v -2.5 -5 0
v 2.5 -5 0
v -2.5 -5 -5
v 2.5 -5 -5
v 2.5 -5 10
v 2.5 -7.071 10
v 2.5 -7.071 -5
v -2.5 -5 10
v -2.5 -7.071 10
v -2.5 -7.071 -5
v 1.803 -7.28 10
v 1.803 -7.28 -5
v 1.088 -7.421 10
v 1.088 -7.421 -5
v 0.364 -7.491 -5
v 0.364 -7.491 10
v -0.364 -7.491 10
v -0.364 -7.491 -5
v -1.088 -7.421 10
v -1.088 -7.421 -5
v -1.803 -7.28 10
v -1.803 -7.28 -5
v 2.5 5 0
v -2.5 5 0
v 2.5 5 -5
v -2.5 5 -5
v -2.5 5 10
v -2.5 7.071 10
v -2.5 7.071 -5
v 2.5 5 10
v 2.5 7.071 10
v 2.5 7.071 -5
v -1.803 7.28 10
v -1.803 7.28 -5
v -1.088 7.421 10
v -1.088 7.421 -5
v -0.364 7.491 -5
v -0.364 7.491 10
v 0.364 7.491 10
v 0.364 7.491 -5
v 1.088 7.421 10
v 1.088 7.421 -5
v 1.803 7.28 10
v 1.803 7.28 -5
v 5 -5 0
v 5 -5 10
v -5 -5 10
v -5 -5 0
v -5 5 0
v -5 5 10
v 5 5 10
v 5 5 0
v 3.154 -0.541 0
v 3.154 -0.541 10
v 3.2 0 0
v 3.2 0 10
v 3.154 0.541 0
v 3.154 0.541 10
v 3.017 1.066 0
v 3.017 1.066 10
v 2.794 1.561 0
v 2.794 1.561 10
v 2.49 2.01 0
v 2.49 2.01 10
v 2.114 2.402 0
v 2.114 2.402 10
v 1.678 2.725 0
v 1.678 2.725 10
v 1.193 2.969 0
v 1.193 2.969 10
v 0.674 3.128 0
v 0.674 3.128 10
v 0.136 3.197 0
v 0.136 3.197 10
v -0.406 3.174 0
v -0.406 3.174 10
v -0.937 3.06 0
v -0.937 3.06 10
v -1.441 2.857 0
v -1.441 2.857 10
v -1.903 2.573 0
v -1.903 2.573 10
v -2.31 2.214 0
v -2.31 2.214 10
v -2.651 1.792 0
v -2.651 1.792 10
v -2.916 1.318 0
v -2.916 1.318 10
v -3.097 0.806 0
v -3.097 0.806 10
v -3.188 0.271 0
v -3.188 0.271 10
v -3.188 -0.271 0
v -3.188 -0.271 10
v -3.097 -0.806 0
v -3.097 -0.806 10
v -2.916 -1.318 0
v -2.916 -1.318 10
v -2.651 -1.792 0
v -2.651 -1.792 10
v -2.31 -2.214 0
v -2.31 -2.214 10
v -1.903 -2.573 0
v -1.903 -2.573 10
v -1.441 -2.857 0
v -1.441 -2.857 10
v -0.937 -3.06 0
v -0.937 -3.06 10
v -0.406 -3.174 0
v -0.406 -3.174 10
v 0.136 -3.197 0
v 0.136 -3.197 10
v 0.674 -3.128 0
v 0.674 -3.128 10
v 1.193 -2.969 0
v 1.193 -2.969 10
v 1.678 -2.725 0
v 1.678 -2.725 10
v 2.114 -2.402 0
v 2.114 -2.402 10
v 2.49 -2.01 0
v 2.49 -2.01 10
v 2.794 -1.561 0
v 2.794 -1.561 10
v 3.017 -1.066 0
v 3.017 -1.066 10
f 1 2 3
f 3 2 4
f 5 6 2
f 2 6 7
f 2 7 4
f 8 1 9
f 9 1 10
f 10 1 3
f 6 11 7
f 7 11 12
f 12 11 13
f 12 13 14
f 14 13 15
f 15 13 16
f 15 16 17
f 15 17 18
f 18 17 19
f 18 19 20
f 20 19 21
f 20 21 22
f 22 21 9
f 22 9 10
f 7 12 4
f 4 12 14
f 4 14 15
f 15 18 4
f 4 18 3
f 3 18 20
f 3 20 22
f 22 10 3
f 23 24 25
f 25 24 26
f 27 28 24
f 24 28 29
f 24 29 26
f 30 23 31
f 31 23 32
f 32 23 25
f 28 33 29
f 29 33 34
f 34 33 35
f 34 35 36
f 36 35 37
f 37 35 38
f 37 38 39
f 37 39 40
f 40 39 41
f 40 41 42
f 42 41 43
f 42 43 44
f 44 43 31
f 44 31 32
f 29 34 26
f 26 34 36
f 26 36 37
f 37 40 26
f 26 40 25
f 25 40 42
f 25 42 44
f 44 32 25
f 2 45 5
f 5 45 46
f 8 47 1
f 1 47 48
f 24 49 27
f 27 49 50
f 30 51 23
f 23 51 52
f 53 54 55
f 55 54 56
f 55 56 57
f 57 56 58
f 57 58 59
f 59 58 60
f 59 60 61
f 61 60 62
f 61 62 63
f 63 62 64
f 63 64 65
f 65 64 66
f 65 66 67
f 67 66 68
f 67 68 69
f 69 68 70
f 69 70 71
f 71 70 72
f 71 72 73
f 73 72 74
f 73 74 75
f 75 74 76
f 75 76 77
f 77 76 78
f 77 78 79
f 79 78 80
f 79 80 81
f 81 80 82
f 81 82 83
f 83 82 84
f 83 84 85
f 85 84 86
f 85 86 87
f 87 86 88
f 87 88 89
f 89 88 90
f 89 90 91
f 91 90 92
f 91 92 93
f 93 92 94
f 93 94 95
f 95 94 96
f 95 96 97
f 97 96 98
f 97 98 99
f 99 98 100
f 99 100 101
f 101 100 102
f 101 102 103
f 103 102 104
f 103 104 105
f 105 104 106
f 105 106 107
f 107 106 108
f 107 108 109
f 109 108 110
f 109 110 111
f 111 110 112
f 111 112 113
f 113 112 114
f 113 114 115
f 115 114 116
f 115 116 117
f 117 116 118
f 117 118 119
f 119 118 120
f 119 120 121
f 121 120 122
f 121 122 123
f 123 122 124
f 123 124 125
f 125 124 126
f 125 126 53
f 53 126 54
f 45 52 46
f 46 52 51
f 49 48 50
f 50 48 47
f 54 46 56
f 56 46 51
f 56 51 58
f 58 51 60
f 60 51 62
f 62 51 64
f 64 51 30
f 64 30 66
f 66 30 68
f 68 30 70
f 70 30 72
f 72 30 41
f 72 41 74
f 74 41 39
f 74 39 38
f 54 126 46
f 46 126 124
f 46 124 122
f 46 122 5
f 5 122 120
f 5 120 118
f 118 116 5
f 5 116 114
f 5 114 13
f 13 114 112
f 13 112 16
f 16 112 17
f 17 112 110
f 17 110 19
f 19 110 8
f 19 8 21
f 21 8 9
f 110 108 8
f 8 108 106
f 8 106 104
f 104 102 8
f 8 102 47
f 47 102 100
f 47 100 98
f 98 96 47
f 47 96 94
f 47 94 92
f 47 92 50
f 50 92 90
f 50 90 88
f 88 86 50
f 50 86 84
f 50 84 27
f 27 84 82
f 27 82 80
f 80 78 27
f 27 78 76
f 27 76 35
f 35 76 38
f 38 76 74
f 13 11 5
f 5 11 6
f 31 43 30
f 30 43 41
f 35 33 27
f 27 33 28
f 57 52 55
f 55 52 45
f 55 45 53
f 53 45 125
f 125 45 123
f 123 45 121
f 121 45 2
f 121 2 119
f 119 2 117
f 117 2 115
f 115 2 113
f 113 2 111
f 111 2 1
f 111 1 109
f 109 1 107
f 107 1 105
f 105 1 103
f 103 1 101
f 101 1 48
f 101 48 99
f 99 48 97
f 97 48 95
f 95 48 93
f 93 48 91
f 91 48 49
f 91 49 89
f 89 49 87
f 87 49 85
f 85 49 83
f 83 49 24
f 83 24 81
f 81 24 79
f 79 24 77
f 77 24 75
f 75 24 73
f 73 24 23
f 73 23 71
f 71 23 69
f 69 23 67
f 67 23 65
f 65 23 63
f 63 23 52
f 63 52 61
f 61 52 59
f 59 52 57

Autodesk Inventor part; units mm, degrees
ref_plane "YZ Plane" through (0, 0, 0) normal (1, 0, 0) x (0, 1, 0)
ref_plane "XZ Plane" through (0, 0, 0) normal (0, 1, 0) x (-1, 0, 0)
ref_plane "XY Plane" through (0, 0, 0) normal (0, 0, 1) x (1, 0, 0)
sketch "Sketch1" plane through (0, 0, 0) normal (0, 0, 1) x (1, 0, 0)
  line L0 (5, 5) -> (5, -5)
  line L1 (-5, -5) -> (-5, 5)
  line L2 (5, 5) -> (-5, 5)
  line L3 (5, -5) -> (-5, -5)
  point P0 (0, 0)
  dimension "d16" = 10
  dimension "d17" = 10
  dimension "d18" = 5
  dimension "d19" = 5
extrude "Extrusion1" add sketch "Sketch1" along normal blind 10
sketch "Sketch3" plane through (0, 0, 10) normal (0, 0, 1) x (1, 0, 0)
  circle A0 centre (0, 0) radius 3.2
  dimension "d13" = 6.4
extrude "Extrusion3" cut sketch "Sketch3" against normal up to next
sketch "Sketch4" plane through (0, 0, 10) normal (0, 0, 1) x (1, 0, 0)
  arc A0 (-2.5, -7.0711) -> (2.5, -7.0711) centre (0, 0) ccw
  arc A1 (2.5, 7.0711) -> (-2.5, 7.0711) centre (0, 0) ccw
  line L0 (5, 5) -> (-5, 5) projected
  line L1 (-5, -5) -> (5, -5) projected
  line L2 (-2.5, 5) -> (2.5, 5)
  line L3 (2.5, -5) -> (-2.5, -5)
  line L4 (-2.5, 7.0711) -> (-2.5, 5)
  line L5 (-2.5, -5) -> (-2.5, -7.0711)
  line L6 (2.5, -7.0711) -> (2.5, -5)
  line L7 (2.5, 5) -> (2.5, 7.0711)
extrude "Extrusion4" add sketch "Sketch4" against normal blind 15
equation "\"d18\" = 0.5 * d16"
equation "\"d19\" = 0.5 * d17"
properties part number "PotHandle"
